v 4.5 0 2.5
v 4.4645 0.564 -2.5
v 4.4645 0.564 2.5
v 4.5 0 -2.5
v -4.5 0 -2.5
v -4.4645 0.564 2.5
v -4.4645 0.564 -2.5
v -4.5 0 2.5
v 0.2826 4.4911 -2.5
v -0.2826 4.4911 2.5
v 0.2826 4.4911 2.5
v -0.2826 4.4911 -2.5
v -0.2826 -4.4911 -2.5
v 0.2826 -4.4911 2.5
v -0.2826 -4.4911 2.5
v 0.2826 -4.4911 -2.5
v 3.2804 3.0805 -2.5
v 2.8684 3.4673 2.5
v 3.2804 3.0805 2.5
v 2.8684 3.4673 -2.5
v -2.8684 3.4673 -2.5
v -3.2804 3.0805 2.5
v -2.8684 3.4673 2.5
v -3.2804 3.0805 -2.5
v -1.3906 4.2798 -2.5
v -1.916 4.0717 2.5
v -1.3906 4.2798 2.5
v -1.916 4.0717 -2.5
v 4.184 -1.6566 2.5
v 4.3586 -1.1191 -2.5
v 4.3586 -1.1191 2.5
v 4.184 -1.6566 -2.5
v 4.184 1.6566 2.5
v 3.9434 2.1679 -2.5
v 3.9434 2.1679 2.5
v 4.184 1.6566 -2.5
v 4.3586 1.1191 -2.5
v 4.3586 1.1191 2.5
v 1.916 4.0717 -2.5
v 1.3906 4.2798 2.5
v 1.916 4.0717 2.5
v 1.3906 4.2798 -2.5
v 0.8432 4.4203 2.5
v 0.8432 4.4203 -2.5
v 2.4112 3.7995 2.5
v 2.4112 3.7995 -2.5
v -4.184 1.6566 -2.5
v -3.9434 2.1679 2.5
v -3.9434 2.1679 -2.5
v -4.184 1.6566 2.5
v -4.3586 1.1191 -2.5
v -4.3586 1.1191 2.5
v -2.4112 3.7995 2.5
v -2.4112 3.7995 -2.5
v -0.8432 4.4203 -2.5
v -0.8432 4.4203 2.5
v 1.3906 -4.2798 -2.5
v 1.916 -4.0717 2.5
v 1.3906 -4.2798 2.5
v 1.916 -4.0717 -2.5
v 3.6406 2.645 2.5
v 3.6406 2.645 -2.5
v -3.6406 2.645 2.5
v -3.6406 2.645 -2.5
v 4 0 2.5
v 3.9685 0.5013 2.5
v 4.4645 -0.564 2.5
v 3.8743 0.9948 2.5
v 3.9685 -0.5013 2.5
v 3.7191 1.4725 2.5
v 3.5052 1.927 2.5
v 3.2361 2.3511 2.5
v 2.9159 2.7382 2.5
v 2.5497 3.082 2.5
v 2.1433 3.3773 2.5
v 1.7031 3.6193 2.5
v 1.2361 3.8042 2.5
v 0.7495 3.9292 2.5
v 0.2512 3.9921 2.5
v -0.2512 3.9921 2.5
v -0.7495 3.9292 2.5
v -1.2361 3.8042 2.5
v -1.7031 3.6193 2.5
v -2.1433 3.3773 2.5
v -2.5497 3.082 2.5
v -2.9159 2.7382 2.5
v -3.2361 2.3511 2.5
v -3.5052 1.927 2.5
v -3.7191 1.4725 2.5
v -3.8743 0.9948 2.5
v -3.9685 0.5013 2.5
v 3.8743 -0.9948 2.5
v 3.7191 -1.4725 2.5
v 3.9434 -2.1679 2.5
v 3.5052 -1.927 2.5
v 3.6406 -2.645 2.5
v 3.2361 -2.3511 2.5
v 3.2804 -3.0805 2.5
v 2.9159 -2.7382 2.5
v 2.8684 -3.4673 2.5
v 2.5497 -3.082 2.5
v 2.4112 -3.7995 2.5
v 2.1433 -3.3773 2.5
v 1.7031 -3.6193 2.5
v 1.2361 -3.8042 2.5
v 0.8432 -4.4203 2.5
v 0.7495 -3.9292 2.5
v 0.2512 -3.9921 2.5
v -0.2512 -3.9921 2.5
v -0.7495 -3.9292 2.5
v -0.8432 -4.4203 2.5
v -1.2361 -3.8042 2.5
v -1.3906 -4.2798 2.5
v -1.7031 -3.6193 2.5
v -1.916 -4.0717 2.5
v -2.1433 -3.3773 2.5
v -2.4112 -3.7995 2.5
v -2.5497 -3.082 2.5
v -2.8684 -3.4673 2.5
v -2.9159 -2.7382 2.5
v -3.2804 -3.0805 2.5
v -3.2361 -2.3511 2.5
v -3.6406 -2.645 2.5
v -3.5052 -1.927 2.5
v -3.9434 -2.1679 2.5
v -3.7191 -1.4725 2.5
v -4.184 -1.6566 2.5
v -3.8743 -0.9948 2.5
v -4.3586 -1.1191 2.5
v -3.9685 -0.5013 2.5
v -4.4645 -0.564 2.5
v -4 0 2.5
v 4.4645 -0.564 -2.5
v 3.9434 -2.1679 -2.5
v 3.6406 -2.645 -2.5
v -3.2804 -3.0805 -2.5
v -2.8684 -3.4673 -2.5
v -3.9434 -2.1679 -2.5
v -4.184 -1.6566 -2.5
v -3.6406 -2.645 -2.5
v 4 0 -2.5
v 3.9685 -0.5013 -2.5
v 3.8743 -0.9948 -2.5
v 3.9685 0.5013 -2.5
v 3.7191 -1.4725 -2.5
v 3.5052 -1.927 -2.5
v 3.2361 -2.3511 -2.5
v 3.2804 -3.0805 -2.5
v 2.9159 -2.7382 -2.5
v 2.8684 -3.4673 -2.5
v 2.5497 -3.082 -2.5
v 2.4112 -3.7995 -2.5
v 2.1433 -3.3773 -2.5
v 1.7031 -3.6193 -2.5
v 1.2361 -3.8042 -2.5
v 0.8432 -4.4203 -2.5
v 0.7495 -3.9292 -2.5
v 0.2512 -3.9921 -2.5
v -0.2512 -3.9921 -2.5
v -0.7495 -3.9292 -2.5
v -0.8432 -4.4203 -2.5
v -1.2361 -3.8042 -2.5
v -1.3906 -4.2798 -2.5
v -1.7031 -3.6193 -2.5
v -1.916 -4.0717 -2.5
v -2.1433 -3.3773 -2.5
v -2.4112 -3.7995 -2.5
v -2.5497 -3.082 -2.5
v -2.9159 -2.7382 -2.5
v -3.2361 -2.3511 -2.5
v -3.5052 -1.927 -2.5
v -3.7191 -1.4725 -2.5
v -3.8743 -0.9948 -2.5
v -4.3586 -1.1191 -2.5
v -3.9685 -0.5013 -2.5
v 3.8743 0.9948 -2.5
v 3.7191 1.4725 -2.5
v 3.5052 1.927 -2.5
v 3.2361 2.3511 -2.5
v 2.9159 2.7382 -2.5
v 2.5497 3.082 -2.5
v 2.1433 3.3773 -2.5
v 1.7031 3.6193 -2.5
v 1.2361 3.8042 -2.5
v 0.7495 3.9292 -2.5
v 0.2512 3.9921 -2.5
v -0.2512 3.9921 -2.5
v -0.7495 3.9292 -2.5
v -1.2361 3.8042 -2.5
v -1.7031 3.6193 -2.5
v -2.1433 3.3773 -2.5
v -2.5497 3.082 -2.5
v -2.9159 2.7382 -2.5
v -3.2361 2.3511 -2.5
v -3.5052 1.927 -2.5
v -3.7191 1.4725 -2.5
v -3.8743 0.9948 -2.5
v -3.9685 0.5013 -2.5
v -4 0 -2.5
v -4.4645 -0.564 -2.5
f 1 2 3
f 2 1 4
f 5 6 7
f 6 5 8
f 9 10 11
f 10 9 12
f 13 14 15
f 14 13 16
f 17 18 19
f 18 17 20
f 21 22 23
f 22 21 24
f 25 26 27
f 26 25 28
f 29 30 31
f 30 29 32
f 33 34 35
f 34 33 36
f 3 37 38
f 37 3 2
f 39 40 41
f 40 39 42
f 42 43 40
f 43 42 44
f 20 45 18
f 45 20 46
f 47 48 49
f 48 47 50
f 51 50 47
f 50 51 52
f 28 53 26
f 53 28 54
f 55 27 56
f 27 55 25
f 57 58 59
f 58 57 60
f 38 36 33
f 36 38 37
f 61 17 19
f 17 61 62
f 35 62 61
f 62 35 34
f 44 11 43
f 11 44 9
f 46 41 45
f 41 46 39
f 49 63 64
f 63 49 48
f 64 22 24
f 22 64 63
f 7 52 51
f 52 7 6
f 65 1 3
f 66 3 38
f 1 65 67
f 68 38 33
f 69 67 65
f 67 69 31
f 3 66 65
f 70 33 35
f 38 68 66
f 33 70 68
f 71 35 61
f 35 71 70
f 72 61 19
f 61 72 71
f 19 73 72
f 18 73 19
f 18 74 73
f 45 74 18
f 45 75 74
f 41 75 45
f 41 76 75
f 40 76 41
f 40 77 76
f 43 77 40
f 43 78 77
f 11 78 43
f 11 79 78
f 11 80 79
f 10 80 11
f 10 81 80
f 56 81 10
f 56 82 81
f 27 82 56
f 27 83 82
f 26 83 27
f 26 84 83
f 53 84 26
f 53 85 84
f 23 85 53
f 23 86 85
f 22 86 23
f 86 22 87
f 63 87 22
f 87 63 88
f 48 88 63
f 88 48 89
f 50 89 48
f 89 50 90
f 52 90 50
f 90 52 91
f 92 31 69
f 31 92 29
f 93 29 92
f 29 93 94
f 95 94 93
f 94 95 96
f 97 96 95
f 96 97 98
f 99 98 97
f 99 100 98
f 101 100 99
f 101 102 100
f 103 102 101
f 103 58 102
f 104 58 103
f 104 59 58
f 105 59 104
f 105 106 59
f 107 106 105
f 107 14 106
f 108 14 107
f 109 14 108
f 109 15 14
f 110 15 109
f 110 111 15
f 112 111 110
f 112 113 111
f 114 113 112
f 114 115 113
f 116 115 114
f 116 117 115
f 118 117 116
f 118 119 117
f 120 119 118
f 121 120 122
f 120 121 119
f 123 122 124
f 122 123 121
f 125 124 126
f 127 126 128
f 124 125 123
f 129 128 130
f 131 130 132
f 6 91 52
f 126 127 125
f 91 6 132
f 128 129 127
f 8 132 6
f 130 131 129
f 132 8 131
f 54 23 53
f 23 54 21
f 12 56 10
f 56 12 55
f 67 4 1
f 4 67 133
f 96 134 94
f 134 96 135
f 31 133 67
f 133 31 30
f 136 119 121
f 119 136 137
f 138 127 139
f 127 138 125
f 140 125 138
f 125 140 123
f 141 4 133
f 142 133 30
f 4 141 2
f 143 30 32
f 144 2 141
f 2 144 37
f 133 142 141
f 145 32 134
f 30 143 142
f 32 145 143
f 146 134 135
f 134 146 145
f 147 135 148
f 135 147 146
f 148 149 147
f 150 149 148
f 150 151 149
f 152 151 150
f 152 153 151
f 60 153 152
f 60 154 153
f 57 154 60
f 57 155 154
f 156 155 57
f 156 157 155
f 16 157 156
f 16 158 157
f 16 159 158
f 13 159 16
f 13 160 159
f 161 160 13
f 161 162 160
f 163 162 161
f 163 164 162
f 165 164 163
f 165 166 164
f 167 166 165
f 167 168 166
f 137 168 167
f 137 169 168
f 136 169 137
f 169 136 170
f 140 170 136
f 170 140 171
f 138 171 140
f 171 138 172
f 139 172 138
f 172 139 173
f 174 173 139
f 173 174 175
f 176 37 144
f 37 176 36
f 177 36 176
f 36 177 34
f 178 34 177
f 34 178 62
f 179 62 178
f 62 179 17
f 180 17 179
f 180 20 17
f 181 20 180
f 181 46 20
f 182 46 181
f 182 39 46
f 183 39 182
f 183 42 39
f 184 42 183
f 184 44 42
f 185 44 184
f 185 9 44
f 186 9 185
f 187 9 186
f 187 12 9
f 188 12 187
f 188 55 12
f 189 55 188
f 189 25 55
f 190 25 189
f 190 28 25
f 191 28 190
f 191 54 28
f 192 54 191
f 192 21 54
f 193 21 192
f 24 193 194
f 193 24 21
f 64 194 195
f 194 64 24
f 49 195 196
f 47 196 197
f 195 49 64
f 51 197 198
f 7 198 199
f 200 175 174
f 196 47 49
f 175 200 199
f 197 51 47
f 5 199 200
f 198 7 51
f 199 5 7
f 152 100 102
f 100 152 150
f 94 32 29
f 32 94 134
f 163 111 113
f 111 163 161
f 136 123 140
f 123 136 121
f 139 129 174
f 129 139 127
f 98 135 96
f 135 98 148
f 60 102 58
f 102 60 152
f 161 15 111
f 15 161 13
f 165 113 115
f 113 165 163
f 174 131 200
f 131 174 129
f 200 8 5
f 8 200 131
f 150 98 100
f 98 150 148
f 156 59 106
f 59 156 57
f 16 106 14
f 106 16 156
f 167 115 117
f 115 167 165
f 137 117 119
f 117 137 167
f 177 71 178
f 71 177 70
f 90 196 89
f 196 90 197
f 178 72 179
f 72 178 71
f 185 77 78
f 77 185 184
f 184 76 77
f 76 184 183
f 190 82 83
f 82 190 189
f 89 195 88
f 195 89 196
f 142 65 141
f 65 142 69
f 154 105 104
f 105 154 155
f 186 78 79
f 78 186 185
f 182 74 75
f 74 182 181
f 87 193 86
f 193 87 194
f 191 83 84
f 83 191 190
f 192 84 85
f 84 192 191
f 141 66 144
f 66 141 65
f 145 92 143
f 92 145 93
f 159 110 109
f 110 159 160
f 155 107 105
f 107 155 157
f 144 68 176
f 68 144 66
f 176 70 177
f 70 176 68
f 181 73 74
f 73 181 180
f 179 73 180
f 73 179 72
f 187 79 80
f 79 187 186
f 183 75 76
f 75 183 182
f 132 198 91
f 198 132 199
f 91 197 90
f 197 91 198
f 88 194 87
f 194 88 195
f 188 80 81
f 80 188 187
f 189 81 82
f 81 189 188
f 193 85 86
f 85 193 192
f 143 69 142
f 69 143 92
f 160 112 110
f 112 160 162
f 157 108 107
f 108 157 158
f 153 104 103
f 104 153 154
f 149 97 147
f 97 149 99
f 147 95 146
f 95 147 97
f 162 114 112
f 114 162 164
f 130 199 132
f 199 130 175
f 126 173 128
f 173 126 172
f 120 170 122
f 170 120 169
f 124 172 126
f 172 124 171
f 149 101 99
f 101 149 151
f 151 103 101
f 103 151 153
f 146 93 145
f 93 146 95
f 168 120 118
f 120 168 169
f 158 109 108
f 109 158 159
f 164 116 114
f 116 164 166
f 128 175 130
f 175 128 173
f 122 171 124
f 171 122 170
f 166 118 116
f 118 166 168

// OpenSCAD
$fn = 50;


difference() {
	union() {
		translate(v = [0, 0, -2.5000000000]) {
			cylinder(h = 5, r = 4.5000000000);
		}
	}
	union() {
		translate(v = [0, 0, -100.0000000000]) {
			cylinder(h = 200, r = 4);
		}
	}
}
